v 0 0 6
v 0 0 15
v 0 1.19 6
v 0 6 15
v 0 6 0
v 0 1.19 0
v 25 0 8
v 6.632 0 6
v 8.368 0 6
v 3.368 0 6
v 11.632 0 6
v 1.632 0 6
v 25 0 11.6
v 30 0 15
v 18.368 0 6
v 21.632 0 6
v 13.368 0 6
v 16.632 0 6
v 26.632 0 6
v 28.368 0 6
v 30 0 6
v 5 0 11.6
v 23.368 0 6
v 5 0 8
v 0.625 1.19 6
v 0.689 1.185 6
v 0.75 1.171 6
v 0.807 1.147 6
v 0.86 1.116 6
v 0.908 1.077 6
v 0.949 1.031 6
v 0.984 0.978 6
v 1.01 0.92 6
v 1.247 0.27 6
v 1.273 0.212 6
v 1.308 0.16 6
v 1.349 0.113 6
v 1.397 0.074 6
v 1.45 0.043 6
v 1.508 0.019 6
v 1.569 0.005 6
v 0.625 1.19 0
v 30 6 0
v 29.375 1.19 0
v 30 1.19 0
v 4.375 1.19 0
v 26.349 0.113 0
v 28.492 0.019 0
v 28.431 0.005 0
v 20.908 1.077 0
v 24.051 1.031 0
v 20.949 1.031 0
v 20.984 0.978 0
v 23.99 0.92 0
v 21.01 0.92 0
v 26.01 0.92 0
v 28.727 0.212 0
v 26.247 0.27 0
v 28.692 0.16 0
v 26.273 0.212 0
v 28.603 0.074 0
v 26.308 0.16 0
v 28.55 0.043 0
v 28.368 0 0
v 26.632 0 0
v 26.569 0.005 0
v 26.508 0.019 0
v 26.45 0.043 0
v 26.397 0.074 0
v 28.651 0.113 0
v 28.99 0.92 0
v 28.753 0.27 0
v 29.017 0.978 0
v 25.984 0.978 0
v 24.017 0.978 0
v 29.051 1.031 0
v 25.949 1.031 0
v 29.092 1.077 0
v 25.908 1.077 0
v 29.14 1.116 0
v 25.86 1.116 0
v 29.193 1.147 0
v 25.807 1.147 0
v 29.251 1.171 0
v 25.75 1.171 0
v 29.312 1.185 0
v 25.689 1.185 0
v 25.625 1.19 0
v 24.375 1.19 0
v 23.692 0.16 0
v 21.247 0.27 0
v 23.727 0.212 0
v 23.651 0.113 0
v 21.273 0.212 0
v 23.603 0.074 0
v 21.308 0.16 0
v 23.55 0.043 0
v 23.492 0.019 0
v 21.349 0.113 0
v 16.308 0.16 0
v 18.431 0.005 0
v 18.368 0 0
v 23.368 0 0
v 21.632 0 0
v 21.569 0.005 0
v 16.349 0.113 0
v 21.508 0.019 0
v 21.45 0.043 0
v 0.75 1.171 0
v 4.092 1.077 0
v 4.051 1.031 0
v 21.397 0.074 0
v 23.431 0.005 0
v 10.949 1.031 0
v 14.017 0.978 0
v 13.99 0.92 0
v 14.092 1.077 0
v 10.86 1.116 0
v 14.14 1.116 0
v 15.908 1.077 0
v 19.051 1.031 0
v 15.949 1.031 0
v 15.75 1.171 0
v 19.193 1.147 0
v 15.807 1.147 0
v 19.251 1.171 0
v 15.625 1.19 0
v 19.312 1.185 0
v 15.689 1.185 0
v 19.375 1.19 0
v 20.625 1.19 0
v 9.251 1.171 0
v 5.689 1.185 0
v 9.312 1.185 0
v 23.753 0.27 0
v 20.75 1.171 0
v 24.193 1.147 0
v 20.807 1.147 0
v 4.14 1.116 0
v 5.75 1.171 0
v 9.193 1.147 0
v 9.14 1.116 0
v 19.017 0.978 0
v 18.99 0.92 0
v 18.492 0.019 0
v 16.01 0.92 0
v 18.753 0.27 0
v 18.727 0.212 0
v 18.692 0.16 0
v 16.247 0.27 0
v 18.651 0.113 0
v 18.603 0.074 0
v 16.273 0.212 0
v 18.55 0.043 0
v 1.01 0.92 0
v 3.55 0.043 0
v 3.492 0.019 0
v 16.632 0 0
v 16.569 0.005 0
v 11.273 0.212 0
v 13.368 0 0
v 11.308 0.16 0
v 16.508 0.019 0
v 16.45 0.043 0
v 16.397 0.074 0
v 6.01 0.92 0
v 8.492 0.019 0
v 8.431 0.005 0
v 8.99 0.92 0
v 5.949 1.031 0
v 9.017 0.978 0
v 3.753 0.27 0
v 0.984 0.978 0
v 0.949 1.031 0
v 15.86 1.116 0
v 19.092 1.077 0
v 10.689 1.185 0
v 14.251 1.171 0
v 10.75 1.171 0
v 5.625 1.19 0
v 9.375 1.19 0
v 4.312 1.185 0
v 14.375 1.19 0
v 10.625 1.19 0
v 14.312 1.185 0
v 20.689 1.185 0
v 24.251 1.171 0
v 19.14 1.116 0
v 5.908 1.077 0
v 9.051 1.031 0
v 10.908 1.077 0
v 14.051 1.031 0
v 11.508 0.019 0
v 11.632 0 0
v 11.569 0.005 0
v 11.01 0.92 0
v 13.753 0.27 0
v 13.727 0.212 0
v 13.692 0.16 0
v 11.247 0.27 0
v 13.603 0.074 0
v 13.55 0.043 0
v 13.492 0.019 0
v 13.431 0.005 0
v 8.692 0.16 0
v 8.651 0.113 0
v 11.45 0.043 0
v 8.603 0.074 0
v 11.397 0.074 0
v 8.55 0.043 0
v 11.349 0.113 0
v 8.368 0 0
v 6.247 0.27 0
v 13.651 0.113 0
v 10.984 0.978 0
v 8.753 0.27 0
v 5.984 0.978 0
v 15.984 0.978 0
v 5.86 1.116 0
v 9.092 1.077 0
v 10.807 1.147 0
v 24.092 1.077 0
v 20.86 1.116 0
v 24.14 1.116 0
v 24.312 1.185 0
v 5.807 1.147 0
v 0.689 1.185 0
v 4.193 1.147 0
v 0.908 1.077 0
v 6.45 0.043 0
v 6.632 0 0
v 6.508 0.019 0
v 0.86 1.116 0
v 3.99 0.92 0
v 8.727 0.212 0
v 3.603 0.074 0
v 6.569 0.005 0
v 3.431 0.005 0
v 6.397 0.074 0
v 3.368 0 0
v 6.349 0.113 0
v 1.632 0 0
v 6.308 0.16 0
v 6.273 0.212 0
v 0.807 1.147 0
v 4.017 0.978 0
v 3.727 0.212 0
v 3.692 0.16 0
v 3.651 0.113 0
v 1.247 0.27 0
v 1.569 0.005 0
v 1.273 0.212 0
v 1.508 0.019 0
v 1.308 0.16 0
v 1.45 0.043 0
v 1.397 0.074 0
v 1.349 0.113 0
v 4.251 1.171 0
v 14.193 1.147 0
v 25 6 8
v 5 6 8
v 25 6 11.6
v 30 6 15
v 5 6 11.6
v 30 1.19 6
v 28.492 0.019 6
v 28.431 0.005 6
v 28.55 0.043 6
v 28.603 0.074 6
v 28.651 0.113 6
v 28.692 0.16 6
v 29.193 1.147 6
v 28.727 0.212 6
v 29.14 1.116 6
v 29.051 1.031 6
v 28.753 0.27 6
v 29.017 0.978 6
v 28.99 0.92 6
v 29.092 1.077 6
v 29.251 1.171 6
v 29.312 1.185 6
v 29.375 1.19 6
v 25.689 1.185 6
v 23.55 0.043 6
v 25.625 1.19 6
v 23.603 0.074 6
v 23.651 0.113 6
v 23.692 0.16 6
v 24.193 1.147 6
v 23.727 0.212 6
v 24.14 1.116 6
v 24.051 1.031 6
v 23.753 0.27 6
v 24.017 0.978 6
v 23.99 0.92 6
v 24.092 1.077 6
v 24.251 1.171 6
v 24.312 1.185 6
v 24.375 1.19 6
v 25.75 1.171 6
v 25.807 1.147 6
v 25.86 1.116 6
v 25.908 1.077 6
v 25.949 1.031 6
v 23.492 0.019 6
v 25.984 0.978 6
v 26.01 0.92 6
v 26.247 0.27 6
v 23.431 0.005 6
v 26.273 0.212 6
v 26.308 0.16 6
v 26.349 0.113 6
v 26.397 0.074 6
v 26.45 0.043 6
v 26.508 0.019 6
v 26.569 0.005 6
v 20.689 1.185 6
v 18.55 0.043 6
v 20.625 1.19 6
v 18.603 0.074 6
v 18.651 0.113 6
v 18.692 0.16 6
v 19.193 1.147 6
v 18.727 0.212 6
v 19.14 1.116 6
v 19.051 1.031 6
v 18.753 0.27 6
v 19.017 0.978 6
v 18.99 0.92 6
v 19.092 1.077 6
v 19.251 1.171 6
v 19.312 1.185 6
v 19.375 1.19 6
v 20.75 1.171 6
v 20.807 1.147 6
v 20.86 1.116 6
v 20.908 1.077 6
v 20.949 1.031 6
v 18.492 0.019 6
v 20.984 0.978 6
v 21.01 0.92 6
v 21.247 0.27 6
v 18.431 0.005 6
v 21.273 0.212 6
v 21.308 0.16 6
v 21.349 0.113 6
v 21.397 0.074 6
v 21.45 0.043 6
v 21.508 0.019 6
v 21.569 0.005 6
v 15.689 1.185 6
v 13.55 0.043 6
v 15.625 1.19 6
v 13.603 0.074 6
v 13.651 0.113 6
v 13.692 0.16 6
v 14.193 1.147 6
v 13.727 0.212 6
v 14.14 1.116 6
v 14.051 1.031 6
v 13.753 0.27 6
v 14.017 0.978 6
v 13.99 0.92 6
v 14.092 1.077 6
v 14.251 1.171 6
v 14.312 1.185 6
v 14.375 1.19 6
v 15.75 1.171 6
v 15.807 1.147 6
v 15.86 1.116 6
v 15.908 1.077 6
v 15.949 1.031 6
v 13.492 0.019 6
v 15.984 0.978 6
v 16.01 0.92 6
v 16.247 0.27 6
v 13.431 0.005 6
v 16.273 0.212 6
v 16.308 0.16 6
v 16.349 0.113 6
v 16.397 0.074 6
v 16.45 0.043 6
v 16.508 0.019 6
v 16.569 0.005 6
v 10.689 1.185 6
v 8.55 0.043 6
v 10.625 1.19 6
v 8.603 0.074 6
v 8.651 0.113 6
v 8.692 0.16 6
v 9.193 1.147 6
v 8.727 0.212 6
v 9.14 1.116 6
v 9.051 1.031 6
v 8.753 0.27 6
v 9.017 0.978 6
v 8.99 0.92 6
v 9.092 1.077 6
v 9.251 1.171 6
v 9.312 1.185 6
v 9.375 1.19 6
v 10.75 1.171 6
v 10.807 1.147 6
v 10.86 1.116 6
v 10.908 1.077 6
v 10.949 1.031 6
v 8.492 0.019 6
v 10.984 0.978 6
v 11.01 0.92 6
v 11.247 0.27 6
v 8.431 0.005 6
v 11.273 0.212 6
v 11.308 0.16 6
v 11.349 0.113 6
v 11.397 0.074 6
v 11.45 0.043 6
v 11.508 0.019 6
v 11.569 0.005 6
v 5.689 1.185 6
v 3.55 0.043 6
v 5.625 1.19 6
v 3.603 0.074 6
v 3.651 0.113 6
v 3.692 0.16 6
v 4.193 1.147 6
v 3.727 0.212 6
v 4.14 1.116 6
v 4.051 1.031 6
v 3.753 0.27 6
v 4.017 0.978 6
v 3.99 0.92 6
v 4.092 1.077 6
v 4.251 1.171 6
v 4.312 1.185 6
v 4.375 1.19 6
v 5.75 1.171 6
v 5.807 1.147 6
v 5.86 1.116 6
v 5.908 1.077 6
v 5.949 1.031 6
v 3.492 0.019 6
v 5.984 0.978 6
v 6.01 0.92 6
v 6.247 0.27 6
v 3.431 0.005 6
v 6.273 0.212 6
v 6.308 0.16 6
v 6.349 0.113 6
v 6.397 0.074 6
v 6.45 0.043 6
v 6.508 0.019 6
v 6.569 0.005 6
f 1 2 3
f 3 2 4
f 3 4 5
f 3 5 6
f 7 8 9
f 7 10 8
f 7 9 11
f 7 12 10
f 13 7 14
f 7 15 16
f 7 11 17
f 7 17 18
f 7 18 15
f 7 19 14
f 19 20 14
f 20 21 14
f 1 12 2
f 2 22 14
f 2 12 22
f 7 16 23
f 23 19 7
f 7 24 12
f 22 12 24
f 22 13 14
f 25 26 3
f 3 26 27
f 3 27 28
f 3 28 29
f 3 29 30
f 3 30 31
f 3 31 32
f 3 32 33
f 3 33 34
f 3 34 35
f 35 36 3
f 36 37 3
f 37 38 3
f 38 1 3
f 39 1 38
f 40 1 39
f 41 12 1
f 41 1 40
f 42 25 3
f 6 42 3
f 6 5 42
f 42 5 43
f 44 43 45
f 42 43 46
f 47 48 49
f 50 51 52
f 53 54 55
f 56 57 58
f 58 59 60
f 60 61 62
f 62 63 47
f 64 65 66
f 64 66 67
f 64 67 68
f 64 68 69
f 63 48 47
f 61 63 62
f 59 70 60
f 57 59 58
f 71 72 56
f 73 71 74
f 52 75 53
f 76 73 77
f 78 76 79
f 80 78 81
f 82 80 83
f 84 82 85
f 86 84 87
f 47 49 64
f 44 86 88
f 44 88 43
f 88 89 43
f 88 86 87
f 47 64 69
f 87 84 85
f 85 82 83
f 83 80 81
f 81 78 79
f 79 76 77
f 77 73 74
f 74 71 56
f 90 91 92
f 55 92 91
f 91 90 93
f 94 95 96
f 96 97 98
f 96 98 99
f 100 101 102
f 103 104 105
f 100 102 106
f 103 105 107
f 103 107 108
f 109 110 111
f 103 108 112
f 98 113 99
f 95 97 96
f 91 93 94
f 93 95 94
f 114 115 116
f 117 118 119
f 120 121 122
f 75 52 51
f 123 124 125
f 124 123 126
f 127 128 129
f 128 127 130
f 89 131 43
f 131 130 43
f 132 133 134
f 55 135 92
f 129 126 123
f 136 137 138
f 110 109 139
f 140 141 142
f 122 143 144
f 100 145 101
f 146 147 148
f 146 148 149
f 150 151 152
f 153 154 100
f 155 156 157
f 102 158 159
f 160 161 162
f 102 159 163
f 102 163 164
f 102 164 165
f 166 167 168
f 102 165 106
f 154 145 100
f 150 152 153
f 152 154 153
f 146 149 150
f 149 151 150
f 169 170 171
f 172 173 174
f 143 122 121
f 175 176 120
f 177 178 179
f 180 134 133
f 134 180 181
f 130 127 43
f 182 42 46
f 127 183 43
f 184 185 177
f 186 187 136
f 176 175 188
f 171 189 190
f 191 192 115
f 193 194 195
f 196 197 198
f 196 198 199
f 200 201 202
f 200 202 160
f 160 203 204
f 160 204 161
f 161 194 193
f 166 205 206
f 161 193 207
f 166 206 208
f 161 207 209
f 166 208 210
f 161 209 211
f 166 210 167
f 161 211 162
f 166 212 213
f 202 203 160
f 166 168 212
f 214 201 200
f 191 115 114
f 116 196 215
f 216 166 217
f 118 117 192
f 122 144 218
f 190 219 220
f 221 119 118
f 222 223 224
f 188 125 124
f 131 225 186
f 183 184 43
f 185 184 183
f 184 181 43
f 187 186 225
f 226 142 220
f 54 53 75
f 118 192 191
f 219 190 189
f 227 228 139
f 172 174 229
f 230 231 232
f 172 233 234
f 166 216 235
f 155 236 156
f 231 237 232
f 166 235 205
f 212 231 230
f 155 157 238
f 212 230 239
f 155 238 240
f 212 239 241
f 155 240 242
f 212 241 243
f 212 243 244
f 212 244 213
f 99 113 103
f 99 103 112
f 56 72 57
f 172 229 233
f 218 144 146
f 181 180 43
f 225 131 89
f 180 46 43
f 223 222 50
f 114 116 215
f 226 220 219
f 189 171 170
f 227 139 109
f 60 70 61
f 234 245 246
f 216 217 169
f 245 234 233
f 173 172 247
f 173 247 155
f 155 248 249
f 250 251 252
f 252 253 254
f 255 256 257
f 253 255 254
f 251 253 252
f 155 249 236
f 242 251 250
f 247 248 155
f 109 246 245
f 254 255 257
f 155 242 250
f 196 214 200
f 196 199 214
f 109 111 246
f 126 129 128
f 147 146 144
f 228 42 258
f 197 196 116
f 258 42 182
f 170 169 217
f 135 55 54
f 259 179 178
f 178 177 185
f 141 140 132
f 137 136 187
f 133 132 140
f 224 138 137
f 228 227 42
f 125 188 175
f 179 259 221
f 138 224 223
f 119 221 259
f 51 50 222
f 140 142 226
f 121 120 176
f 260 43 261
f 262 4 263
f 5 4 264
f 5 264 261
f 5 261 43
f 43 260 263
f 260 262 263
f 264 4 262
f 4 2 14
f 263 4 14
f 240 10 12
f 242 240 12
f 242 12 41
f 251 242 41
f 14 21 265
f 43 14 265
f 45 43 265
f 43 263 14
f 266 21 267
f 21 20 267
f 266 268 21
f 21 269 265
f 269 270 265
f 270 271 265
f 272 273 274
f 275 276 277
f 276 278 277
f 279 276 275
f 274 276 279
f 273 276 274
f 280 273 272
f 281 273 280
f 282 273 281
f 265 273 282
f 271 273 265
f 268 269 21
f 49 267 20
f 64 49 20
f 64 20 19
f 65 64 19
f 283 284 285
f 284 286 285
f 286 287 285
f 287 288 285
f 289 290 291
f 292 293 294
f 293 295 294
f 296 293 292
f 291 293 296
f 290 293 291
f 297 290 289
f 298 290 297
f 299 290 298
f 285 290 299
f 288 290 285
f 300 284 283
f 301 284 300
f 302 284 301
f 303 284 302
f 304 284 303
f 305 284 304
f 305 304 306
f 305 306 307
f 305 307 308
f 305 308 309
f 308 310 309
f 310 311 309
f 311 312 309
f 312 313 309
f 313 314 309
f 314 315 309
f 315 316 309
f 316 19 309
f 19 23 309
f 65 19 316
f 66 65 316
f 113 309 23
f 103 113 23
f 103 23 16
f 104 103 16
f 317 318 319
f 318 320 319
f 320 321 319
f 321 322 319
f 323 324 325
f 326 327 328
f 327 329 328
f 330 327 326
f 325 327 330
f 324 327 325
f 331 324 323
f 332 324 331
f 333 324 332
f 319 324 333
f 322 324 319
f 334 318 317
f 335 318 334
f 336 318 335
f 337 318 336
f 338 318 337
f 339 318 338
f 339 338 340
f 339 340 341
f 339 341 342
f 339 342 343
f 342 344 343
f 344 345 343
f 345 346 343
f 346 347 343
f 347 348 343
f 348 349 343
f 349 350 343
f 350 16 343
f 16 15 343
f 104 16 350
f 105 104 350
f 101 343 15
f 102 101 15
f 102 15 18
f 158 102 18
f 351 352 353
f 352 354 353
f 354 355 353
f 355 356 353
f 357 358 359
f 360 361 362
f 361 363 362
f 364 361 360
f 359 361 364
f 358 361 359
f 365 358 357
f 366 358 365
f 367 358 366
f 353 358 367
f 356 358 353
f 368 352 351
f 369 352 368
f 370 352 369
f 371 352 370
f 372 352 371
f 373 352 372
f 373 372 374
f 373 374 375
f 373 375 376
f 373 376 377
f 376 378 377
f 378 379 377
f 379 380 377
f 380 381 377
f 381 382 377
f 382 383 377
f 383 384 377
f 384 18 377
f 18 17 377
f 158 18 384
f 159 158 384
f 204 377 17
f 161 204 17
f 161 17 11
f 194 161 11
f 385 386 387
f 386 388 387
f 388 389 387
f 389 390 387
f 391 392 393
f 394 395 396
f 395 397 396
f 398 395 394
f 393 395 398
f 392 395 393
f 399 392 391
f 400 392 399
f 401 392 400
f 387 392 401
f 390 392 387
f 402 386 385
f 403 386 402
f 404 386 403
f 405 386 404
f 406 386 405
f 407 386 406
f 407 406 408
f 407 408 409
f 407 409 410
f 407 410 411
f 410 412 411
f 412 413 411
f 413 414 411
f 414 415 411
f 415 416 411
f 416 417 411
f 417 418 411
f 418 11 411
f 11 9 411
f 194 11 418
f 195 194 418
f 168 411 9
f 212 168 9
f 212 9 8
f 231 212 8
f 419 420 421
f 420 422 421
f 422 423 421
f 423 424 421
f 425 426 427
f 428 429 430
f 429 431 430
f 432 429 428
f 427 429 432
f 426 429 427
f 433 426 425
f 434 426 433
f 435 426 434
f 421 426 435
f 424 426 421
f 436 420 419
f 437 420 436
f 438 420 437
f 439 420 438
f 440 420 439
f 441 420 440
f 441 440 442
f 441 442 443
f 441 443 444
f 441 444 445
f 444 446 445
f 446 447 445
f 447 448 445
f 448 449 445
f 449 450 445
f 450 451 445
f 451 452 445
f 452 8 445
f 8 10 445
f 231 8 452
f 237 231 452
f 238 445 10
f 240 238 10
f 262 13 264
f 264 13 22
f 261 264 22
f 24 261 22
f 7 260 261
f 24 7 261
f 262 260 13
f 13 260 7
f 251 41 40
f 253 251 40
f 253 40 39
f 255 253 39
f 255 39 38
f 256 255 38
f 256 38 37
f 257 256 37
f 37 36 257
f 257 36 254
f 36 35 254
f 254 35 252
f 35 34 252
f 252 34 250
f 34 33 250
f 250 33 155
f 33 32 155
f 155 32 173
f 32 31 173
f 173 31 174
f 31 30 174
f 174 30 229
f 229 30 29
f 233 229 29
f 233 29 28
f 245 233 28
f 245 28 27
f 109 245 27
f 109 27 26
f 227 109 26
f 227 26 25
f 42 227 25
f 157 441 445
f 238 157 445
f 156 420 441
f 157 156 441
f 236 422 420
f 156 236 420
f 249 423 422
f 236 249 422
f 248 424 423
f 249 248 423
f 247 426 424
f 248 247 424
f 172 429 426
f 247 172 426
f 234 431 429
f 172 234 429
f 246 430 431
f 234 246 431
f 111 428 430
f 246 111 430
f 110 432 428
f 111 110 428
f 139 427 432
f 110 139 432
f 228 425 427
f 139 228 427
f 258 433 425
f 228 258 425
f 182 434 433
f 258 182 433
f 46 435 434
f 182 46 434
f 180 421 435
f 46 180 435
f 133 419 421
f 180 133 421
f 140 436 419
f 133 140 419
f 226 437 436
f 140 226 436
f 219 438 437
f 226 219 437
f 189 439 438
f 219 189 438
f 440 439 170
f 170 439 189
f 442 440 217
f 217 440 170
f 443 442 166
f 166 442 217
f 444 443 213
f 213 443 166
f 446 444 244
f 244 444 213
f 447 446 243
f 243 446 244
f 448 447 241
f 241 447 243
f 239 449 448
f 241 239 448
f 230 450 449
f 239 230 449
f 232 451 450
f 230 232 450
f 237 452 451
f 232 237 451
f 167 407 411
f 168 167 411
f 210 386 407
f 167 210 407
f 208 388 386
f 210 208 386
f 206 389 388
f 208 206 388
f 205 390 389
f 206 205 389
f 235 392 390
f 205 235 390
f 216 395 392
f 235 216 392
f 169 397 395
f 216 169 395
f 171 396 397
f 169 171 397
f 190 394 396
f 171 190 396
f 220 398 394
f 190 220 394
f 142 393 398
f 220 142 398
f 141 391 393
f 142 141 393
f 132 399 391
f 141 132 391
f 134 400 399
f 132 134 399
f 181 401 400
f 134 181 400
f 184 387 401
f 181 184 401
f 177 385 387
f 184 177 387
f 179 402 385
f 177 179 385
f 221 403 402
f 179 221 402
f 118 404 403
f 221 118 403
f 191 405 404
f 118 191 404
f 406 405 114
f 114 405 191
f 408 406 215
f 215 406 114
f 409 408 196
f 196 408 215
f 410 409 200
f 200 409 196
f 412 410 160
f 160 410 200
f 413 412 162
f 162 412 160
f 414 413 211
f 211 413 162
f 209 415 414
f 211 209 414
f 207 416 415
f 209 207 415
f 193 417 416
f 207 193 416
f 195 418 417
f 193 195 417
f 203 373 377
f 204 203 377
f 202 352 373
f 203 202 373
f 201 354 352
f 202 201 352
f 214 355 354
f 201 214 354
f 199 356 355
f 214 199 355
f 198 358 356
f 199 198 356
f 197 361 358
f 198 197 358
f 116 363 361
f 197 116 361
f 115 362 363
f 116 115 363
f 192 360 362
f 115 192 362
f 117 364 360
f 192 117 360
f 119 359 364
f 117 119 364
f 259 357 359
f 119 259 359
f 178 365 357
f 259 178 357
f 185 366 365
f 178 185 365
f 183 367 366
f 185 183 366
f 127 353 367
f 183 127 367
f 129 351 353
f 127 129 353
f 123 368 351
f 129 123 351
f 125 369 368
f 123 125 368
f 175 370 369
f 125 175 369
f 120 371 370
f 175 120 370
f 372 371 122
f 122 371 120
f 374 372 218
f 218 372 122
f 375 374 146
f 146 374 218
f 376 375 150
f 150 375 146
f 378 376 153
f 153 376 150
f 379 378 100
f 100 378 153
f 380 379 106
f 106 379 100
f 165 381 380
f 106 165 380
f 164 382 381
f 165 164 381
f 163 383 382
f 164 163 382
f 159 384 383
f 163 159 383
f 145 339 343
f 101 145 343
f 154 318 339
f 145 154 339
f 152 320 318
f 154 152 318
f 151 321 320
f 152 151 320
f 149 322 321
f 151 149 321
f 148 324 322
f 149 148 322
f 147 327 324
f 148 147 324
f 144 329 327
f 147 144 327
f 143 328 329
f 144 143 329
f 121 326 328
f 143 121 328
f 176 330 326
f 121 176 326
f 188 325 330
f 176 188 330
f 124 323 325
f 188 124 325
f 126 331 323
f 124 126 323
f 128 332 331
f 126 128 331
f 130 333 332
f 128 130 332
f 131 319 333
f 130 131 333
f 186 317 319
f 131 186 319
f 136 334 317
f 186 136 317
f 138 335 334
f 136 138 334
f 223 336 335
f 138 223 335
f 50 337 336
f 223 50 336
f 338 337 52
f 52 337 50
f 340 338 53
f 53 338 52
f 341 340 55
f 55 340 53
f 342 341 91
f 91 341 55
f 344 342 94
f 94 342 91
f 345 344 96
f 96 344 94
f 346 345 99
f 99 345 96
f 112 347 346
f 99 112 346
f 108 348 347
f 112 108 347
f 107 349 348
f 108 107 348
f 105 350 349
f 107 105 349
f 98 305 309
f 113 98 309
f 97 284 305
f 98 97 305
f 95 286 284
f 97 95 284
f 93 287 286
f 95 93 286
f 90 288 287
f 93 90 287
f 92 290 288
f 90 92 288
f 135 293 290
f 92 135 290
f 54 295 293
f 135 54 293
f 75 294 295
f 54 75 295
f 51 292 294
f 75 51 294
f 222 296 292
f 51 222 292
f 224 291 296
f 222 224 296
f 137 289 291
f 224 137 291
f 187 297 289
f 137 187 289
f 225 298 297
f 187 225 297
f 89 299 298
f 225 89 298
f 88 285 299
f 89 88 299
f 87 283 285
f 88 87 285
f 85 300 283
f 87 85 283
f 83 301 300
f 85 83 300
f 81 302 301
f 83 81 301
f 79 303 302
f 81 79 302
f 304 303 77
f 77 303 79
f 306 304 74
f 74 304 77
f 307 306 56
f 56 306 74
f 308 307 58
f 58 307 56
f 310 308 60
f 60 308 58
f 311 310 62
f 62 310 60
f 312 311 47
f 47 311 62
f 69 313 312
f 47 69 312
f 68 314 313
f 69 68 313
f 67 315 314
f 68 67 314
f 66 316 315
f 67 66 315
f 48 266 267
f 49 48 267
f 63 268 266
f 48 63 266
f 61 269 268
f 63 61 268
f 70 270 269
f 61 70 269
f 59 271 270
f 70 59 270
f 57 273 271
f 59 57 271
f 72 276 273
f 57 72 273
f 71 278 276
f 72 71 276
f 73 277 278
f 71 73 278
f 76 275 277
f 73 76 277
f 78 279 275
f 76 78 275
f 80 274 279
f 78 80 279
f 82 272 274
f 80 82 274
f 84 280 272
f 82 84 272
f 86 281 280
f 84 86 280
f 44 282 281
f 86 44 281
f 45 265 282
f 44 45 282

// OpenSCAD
/*Parametric belting section generator 
By - The DoomMeister
Derived from http://www.thingiverse.com/thing:16627 by Droftarts
*/


//Variables
tooth_profile = "T5"; // "T2.5", "T5" , "T10"
belt_width = 20;
n = 20;

//Draw
//belt_length(profile = tooth_profile, belt_width = 10, n = 30);
difference(){
	cube([30,6,15]);
	translate([5,0,8])cube([20,7,3.6]);
	color("red")belt_length(profile = "T5", belt_width = 6, n = 8);
}
//translate([0,0,-40])color("green")belt_length(profile = "T10", belt_width = 10, n = 8);
//Outer Module
module belt_length(profile = "T2.5", belt_width = 6, n = 10)
{

			if ( profile == "T2.5" ) 
				{ 
					_belt_length(
						profile=profile, 
						n = n, 
						belt_width = belt_width,
						tooth_pitch = 2.5,
						backing_thickness = 0.6	
						);
				}
			if ( profile == "T5" ) 
				{ 
					_belt_length(
						profile=profile, 
						n = n, 
						belt_width = belt_width,
						tooth_pitch = 5,
						backing_thickness = 1	
						);
				}
			if ( profile == "T10" ) 
				{ 
					_belt_length(
						profile=profile, 
						n = n, 
						belt_width = belt_width,
						tooth_pitch = 10,
						backing_thickness = 2
						);
				}
			if ( profile == "MXL" ) 
				{ 
					_belt_length(
						profile=profile, 
						n = n, 
						belt_width = belt_width,
						tooth_pitch = 2.032,
						backing_thickness = 0.64
						);
				}


}



//inner module
module _belt_length(profile = "T2.5", n = 10, belt_width = 5, tooth_pitch = 2.5, backing_thickness = 0.6)
{

for( i = [0:n])
	{
		union(){

			if ( profile == "T2.5" ) { translate([tooth_pitch*i,0,0])T2_5(width = belt_width);}
			if ( profile == "T5" ) { translate([tooth_pitch*i,0,0])T5(width = belt_width);}
			if ( profile == "T10" ) { translate([tooth_pitch*i,0,0])T10(width = belt_width);}
			if ( profile == "MXL" ) { translate([tooth_pitch*i,0,0])MXL(width = belt_width);}
			translate([(tooth_pitch*i)-(tooth_pitch/2),-backing_thickness,0])cube([tooth_pitch,backing_thickness,belt_width]);
		}
	}
}



//Tooth Form modules - Taken from http://www.thingiverse.com/thing:1662
module T2_5(width = 2)
	{
	linear_extrude(height=width) polygon([[-0.839258,-0.5],[-0.839258,0],[-0.770246,0.021652],[-0.726369,0.079022],[-0.529167,0.620889],[-0.485025,0.67826],[-0.416278,0.699911],[0.416278,0.699911],[0.484849,0.67826],[0.528814,0.620889],[0.726369,0.079022],[0.770114,0.021652],[0.839258,0],[0.839258,-0.5]]);
	}

module T5(width = 2)
	{
	linear_extrude(height=width) polygon([[-1.632126,-0.5],[-1.632126,0],[-1.568549,0.004939],[-1.507539,0.019367],[-1.450023,0.042686],[-1.396912,0.074224],[-1.349125,0.113379],[-1.307581,0.159508],[-1.273186,0.211991],[-1.246868,0.270192],[-1.009802,0.920362],[-0.983414,0.978433],[-0.949018,1.030788],[-0.907524,1.076798],[-0.859829,1.115847],[-0.80682,1.147314],[-0.749402,1.170562],[-0.688471,1.184956],[-0.624921,1.189895],[0.624971,1.189895],[0.688622,1.184956],[0.749607,1.170562],[0.807043,1.147314],[0.860055,1.115847],[0.907754,1.076798],[0.949269,1.030788],[0.9837,0.978433],[1.010193,0.920362],[1.246907,0.270192],[1.273295,0.211991],[1.307726,0.159508],[1.349276,0.113379],[1.397039,0.074224],[1.450111,0.042686],[1.507589,0.019367],[1.568563,0.004939],[1.632126,0],[1.632126,-0.5]]);
	}

module T10(width = 2)
	{
	linear_extrude(height=width) polygon([[-3.06511,-1],[-3.06511,0],[-2.971998,0.007239],[-2.882718,0.028344],[-2.79859,0.062396],[-2.720931,0.108479],[-2.651061,0.165675],[-2.590298,0.233065],[-2.539962,0.309732],[-2.501371,0.394759],[-1.879071,2.105025],[-1.840363,2.190052],[-1.789939,2.266719],[-1.729114,2.334109],[-1.659202,2.391304],[-1.581518,2.437387],[-1.497376,2.47144],[-1.408092,2.492545],[-1.314979,2.499784],[1.314979,2.499784],[1.408091,2.492545],[1.497371,2.47144],[1.581499,2.437387],[1.659158,2.391304],[1.729028,2.334109],[1.789791,2.266719],[1.840127,2.190052],[1.878718,2.105025],[2.501018,0.394759],[2.539726,0.309732],[2.59015,0.233065],[2.650975,0.165675],[2.720887,0.108479],[2.798571,0.062396],[2.882713,0.028344],[2.971997,0.007239],[3.06511,0],[3.06511,-1]]);
	}

module MXL(width = 2)
	{
	linear_extrude(height=width) polygon([[-0.660421,-0.5],[-0.660421,0],[-0.621898,0.006033],[-0.587714,0.023037],[-0.560056,0.049424],[-0.541182,0.083609],[-0.417357,0.424392],[-0.398413,0.458752],[-0.370649,0.48514],[-0.336324,0.502074],[-0.297744,0.508035],[0.297744,0.508035],[0.336268,0.502074],[0.370452,0.48514],[0.39811,0.458752],[0.416983,0.424392],[0.540808,0.083609],[0.559752,0.049424],[0.587516,0.023037],[0.621841,0.006033],[0.660421,0],[0.660421,-0.5]]);
	}
